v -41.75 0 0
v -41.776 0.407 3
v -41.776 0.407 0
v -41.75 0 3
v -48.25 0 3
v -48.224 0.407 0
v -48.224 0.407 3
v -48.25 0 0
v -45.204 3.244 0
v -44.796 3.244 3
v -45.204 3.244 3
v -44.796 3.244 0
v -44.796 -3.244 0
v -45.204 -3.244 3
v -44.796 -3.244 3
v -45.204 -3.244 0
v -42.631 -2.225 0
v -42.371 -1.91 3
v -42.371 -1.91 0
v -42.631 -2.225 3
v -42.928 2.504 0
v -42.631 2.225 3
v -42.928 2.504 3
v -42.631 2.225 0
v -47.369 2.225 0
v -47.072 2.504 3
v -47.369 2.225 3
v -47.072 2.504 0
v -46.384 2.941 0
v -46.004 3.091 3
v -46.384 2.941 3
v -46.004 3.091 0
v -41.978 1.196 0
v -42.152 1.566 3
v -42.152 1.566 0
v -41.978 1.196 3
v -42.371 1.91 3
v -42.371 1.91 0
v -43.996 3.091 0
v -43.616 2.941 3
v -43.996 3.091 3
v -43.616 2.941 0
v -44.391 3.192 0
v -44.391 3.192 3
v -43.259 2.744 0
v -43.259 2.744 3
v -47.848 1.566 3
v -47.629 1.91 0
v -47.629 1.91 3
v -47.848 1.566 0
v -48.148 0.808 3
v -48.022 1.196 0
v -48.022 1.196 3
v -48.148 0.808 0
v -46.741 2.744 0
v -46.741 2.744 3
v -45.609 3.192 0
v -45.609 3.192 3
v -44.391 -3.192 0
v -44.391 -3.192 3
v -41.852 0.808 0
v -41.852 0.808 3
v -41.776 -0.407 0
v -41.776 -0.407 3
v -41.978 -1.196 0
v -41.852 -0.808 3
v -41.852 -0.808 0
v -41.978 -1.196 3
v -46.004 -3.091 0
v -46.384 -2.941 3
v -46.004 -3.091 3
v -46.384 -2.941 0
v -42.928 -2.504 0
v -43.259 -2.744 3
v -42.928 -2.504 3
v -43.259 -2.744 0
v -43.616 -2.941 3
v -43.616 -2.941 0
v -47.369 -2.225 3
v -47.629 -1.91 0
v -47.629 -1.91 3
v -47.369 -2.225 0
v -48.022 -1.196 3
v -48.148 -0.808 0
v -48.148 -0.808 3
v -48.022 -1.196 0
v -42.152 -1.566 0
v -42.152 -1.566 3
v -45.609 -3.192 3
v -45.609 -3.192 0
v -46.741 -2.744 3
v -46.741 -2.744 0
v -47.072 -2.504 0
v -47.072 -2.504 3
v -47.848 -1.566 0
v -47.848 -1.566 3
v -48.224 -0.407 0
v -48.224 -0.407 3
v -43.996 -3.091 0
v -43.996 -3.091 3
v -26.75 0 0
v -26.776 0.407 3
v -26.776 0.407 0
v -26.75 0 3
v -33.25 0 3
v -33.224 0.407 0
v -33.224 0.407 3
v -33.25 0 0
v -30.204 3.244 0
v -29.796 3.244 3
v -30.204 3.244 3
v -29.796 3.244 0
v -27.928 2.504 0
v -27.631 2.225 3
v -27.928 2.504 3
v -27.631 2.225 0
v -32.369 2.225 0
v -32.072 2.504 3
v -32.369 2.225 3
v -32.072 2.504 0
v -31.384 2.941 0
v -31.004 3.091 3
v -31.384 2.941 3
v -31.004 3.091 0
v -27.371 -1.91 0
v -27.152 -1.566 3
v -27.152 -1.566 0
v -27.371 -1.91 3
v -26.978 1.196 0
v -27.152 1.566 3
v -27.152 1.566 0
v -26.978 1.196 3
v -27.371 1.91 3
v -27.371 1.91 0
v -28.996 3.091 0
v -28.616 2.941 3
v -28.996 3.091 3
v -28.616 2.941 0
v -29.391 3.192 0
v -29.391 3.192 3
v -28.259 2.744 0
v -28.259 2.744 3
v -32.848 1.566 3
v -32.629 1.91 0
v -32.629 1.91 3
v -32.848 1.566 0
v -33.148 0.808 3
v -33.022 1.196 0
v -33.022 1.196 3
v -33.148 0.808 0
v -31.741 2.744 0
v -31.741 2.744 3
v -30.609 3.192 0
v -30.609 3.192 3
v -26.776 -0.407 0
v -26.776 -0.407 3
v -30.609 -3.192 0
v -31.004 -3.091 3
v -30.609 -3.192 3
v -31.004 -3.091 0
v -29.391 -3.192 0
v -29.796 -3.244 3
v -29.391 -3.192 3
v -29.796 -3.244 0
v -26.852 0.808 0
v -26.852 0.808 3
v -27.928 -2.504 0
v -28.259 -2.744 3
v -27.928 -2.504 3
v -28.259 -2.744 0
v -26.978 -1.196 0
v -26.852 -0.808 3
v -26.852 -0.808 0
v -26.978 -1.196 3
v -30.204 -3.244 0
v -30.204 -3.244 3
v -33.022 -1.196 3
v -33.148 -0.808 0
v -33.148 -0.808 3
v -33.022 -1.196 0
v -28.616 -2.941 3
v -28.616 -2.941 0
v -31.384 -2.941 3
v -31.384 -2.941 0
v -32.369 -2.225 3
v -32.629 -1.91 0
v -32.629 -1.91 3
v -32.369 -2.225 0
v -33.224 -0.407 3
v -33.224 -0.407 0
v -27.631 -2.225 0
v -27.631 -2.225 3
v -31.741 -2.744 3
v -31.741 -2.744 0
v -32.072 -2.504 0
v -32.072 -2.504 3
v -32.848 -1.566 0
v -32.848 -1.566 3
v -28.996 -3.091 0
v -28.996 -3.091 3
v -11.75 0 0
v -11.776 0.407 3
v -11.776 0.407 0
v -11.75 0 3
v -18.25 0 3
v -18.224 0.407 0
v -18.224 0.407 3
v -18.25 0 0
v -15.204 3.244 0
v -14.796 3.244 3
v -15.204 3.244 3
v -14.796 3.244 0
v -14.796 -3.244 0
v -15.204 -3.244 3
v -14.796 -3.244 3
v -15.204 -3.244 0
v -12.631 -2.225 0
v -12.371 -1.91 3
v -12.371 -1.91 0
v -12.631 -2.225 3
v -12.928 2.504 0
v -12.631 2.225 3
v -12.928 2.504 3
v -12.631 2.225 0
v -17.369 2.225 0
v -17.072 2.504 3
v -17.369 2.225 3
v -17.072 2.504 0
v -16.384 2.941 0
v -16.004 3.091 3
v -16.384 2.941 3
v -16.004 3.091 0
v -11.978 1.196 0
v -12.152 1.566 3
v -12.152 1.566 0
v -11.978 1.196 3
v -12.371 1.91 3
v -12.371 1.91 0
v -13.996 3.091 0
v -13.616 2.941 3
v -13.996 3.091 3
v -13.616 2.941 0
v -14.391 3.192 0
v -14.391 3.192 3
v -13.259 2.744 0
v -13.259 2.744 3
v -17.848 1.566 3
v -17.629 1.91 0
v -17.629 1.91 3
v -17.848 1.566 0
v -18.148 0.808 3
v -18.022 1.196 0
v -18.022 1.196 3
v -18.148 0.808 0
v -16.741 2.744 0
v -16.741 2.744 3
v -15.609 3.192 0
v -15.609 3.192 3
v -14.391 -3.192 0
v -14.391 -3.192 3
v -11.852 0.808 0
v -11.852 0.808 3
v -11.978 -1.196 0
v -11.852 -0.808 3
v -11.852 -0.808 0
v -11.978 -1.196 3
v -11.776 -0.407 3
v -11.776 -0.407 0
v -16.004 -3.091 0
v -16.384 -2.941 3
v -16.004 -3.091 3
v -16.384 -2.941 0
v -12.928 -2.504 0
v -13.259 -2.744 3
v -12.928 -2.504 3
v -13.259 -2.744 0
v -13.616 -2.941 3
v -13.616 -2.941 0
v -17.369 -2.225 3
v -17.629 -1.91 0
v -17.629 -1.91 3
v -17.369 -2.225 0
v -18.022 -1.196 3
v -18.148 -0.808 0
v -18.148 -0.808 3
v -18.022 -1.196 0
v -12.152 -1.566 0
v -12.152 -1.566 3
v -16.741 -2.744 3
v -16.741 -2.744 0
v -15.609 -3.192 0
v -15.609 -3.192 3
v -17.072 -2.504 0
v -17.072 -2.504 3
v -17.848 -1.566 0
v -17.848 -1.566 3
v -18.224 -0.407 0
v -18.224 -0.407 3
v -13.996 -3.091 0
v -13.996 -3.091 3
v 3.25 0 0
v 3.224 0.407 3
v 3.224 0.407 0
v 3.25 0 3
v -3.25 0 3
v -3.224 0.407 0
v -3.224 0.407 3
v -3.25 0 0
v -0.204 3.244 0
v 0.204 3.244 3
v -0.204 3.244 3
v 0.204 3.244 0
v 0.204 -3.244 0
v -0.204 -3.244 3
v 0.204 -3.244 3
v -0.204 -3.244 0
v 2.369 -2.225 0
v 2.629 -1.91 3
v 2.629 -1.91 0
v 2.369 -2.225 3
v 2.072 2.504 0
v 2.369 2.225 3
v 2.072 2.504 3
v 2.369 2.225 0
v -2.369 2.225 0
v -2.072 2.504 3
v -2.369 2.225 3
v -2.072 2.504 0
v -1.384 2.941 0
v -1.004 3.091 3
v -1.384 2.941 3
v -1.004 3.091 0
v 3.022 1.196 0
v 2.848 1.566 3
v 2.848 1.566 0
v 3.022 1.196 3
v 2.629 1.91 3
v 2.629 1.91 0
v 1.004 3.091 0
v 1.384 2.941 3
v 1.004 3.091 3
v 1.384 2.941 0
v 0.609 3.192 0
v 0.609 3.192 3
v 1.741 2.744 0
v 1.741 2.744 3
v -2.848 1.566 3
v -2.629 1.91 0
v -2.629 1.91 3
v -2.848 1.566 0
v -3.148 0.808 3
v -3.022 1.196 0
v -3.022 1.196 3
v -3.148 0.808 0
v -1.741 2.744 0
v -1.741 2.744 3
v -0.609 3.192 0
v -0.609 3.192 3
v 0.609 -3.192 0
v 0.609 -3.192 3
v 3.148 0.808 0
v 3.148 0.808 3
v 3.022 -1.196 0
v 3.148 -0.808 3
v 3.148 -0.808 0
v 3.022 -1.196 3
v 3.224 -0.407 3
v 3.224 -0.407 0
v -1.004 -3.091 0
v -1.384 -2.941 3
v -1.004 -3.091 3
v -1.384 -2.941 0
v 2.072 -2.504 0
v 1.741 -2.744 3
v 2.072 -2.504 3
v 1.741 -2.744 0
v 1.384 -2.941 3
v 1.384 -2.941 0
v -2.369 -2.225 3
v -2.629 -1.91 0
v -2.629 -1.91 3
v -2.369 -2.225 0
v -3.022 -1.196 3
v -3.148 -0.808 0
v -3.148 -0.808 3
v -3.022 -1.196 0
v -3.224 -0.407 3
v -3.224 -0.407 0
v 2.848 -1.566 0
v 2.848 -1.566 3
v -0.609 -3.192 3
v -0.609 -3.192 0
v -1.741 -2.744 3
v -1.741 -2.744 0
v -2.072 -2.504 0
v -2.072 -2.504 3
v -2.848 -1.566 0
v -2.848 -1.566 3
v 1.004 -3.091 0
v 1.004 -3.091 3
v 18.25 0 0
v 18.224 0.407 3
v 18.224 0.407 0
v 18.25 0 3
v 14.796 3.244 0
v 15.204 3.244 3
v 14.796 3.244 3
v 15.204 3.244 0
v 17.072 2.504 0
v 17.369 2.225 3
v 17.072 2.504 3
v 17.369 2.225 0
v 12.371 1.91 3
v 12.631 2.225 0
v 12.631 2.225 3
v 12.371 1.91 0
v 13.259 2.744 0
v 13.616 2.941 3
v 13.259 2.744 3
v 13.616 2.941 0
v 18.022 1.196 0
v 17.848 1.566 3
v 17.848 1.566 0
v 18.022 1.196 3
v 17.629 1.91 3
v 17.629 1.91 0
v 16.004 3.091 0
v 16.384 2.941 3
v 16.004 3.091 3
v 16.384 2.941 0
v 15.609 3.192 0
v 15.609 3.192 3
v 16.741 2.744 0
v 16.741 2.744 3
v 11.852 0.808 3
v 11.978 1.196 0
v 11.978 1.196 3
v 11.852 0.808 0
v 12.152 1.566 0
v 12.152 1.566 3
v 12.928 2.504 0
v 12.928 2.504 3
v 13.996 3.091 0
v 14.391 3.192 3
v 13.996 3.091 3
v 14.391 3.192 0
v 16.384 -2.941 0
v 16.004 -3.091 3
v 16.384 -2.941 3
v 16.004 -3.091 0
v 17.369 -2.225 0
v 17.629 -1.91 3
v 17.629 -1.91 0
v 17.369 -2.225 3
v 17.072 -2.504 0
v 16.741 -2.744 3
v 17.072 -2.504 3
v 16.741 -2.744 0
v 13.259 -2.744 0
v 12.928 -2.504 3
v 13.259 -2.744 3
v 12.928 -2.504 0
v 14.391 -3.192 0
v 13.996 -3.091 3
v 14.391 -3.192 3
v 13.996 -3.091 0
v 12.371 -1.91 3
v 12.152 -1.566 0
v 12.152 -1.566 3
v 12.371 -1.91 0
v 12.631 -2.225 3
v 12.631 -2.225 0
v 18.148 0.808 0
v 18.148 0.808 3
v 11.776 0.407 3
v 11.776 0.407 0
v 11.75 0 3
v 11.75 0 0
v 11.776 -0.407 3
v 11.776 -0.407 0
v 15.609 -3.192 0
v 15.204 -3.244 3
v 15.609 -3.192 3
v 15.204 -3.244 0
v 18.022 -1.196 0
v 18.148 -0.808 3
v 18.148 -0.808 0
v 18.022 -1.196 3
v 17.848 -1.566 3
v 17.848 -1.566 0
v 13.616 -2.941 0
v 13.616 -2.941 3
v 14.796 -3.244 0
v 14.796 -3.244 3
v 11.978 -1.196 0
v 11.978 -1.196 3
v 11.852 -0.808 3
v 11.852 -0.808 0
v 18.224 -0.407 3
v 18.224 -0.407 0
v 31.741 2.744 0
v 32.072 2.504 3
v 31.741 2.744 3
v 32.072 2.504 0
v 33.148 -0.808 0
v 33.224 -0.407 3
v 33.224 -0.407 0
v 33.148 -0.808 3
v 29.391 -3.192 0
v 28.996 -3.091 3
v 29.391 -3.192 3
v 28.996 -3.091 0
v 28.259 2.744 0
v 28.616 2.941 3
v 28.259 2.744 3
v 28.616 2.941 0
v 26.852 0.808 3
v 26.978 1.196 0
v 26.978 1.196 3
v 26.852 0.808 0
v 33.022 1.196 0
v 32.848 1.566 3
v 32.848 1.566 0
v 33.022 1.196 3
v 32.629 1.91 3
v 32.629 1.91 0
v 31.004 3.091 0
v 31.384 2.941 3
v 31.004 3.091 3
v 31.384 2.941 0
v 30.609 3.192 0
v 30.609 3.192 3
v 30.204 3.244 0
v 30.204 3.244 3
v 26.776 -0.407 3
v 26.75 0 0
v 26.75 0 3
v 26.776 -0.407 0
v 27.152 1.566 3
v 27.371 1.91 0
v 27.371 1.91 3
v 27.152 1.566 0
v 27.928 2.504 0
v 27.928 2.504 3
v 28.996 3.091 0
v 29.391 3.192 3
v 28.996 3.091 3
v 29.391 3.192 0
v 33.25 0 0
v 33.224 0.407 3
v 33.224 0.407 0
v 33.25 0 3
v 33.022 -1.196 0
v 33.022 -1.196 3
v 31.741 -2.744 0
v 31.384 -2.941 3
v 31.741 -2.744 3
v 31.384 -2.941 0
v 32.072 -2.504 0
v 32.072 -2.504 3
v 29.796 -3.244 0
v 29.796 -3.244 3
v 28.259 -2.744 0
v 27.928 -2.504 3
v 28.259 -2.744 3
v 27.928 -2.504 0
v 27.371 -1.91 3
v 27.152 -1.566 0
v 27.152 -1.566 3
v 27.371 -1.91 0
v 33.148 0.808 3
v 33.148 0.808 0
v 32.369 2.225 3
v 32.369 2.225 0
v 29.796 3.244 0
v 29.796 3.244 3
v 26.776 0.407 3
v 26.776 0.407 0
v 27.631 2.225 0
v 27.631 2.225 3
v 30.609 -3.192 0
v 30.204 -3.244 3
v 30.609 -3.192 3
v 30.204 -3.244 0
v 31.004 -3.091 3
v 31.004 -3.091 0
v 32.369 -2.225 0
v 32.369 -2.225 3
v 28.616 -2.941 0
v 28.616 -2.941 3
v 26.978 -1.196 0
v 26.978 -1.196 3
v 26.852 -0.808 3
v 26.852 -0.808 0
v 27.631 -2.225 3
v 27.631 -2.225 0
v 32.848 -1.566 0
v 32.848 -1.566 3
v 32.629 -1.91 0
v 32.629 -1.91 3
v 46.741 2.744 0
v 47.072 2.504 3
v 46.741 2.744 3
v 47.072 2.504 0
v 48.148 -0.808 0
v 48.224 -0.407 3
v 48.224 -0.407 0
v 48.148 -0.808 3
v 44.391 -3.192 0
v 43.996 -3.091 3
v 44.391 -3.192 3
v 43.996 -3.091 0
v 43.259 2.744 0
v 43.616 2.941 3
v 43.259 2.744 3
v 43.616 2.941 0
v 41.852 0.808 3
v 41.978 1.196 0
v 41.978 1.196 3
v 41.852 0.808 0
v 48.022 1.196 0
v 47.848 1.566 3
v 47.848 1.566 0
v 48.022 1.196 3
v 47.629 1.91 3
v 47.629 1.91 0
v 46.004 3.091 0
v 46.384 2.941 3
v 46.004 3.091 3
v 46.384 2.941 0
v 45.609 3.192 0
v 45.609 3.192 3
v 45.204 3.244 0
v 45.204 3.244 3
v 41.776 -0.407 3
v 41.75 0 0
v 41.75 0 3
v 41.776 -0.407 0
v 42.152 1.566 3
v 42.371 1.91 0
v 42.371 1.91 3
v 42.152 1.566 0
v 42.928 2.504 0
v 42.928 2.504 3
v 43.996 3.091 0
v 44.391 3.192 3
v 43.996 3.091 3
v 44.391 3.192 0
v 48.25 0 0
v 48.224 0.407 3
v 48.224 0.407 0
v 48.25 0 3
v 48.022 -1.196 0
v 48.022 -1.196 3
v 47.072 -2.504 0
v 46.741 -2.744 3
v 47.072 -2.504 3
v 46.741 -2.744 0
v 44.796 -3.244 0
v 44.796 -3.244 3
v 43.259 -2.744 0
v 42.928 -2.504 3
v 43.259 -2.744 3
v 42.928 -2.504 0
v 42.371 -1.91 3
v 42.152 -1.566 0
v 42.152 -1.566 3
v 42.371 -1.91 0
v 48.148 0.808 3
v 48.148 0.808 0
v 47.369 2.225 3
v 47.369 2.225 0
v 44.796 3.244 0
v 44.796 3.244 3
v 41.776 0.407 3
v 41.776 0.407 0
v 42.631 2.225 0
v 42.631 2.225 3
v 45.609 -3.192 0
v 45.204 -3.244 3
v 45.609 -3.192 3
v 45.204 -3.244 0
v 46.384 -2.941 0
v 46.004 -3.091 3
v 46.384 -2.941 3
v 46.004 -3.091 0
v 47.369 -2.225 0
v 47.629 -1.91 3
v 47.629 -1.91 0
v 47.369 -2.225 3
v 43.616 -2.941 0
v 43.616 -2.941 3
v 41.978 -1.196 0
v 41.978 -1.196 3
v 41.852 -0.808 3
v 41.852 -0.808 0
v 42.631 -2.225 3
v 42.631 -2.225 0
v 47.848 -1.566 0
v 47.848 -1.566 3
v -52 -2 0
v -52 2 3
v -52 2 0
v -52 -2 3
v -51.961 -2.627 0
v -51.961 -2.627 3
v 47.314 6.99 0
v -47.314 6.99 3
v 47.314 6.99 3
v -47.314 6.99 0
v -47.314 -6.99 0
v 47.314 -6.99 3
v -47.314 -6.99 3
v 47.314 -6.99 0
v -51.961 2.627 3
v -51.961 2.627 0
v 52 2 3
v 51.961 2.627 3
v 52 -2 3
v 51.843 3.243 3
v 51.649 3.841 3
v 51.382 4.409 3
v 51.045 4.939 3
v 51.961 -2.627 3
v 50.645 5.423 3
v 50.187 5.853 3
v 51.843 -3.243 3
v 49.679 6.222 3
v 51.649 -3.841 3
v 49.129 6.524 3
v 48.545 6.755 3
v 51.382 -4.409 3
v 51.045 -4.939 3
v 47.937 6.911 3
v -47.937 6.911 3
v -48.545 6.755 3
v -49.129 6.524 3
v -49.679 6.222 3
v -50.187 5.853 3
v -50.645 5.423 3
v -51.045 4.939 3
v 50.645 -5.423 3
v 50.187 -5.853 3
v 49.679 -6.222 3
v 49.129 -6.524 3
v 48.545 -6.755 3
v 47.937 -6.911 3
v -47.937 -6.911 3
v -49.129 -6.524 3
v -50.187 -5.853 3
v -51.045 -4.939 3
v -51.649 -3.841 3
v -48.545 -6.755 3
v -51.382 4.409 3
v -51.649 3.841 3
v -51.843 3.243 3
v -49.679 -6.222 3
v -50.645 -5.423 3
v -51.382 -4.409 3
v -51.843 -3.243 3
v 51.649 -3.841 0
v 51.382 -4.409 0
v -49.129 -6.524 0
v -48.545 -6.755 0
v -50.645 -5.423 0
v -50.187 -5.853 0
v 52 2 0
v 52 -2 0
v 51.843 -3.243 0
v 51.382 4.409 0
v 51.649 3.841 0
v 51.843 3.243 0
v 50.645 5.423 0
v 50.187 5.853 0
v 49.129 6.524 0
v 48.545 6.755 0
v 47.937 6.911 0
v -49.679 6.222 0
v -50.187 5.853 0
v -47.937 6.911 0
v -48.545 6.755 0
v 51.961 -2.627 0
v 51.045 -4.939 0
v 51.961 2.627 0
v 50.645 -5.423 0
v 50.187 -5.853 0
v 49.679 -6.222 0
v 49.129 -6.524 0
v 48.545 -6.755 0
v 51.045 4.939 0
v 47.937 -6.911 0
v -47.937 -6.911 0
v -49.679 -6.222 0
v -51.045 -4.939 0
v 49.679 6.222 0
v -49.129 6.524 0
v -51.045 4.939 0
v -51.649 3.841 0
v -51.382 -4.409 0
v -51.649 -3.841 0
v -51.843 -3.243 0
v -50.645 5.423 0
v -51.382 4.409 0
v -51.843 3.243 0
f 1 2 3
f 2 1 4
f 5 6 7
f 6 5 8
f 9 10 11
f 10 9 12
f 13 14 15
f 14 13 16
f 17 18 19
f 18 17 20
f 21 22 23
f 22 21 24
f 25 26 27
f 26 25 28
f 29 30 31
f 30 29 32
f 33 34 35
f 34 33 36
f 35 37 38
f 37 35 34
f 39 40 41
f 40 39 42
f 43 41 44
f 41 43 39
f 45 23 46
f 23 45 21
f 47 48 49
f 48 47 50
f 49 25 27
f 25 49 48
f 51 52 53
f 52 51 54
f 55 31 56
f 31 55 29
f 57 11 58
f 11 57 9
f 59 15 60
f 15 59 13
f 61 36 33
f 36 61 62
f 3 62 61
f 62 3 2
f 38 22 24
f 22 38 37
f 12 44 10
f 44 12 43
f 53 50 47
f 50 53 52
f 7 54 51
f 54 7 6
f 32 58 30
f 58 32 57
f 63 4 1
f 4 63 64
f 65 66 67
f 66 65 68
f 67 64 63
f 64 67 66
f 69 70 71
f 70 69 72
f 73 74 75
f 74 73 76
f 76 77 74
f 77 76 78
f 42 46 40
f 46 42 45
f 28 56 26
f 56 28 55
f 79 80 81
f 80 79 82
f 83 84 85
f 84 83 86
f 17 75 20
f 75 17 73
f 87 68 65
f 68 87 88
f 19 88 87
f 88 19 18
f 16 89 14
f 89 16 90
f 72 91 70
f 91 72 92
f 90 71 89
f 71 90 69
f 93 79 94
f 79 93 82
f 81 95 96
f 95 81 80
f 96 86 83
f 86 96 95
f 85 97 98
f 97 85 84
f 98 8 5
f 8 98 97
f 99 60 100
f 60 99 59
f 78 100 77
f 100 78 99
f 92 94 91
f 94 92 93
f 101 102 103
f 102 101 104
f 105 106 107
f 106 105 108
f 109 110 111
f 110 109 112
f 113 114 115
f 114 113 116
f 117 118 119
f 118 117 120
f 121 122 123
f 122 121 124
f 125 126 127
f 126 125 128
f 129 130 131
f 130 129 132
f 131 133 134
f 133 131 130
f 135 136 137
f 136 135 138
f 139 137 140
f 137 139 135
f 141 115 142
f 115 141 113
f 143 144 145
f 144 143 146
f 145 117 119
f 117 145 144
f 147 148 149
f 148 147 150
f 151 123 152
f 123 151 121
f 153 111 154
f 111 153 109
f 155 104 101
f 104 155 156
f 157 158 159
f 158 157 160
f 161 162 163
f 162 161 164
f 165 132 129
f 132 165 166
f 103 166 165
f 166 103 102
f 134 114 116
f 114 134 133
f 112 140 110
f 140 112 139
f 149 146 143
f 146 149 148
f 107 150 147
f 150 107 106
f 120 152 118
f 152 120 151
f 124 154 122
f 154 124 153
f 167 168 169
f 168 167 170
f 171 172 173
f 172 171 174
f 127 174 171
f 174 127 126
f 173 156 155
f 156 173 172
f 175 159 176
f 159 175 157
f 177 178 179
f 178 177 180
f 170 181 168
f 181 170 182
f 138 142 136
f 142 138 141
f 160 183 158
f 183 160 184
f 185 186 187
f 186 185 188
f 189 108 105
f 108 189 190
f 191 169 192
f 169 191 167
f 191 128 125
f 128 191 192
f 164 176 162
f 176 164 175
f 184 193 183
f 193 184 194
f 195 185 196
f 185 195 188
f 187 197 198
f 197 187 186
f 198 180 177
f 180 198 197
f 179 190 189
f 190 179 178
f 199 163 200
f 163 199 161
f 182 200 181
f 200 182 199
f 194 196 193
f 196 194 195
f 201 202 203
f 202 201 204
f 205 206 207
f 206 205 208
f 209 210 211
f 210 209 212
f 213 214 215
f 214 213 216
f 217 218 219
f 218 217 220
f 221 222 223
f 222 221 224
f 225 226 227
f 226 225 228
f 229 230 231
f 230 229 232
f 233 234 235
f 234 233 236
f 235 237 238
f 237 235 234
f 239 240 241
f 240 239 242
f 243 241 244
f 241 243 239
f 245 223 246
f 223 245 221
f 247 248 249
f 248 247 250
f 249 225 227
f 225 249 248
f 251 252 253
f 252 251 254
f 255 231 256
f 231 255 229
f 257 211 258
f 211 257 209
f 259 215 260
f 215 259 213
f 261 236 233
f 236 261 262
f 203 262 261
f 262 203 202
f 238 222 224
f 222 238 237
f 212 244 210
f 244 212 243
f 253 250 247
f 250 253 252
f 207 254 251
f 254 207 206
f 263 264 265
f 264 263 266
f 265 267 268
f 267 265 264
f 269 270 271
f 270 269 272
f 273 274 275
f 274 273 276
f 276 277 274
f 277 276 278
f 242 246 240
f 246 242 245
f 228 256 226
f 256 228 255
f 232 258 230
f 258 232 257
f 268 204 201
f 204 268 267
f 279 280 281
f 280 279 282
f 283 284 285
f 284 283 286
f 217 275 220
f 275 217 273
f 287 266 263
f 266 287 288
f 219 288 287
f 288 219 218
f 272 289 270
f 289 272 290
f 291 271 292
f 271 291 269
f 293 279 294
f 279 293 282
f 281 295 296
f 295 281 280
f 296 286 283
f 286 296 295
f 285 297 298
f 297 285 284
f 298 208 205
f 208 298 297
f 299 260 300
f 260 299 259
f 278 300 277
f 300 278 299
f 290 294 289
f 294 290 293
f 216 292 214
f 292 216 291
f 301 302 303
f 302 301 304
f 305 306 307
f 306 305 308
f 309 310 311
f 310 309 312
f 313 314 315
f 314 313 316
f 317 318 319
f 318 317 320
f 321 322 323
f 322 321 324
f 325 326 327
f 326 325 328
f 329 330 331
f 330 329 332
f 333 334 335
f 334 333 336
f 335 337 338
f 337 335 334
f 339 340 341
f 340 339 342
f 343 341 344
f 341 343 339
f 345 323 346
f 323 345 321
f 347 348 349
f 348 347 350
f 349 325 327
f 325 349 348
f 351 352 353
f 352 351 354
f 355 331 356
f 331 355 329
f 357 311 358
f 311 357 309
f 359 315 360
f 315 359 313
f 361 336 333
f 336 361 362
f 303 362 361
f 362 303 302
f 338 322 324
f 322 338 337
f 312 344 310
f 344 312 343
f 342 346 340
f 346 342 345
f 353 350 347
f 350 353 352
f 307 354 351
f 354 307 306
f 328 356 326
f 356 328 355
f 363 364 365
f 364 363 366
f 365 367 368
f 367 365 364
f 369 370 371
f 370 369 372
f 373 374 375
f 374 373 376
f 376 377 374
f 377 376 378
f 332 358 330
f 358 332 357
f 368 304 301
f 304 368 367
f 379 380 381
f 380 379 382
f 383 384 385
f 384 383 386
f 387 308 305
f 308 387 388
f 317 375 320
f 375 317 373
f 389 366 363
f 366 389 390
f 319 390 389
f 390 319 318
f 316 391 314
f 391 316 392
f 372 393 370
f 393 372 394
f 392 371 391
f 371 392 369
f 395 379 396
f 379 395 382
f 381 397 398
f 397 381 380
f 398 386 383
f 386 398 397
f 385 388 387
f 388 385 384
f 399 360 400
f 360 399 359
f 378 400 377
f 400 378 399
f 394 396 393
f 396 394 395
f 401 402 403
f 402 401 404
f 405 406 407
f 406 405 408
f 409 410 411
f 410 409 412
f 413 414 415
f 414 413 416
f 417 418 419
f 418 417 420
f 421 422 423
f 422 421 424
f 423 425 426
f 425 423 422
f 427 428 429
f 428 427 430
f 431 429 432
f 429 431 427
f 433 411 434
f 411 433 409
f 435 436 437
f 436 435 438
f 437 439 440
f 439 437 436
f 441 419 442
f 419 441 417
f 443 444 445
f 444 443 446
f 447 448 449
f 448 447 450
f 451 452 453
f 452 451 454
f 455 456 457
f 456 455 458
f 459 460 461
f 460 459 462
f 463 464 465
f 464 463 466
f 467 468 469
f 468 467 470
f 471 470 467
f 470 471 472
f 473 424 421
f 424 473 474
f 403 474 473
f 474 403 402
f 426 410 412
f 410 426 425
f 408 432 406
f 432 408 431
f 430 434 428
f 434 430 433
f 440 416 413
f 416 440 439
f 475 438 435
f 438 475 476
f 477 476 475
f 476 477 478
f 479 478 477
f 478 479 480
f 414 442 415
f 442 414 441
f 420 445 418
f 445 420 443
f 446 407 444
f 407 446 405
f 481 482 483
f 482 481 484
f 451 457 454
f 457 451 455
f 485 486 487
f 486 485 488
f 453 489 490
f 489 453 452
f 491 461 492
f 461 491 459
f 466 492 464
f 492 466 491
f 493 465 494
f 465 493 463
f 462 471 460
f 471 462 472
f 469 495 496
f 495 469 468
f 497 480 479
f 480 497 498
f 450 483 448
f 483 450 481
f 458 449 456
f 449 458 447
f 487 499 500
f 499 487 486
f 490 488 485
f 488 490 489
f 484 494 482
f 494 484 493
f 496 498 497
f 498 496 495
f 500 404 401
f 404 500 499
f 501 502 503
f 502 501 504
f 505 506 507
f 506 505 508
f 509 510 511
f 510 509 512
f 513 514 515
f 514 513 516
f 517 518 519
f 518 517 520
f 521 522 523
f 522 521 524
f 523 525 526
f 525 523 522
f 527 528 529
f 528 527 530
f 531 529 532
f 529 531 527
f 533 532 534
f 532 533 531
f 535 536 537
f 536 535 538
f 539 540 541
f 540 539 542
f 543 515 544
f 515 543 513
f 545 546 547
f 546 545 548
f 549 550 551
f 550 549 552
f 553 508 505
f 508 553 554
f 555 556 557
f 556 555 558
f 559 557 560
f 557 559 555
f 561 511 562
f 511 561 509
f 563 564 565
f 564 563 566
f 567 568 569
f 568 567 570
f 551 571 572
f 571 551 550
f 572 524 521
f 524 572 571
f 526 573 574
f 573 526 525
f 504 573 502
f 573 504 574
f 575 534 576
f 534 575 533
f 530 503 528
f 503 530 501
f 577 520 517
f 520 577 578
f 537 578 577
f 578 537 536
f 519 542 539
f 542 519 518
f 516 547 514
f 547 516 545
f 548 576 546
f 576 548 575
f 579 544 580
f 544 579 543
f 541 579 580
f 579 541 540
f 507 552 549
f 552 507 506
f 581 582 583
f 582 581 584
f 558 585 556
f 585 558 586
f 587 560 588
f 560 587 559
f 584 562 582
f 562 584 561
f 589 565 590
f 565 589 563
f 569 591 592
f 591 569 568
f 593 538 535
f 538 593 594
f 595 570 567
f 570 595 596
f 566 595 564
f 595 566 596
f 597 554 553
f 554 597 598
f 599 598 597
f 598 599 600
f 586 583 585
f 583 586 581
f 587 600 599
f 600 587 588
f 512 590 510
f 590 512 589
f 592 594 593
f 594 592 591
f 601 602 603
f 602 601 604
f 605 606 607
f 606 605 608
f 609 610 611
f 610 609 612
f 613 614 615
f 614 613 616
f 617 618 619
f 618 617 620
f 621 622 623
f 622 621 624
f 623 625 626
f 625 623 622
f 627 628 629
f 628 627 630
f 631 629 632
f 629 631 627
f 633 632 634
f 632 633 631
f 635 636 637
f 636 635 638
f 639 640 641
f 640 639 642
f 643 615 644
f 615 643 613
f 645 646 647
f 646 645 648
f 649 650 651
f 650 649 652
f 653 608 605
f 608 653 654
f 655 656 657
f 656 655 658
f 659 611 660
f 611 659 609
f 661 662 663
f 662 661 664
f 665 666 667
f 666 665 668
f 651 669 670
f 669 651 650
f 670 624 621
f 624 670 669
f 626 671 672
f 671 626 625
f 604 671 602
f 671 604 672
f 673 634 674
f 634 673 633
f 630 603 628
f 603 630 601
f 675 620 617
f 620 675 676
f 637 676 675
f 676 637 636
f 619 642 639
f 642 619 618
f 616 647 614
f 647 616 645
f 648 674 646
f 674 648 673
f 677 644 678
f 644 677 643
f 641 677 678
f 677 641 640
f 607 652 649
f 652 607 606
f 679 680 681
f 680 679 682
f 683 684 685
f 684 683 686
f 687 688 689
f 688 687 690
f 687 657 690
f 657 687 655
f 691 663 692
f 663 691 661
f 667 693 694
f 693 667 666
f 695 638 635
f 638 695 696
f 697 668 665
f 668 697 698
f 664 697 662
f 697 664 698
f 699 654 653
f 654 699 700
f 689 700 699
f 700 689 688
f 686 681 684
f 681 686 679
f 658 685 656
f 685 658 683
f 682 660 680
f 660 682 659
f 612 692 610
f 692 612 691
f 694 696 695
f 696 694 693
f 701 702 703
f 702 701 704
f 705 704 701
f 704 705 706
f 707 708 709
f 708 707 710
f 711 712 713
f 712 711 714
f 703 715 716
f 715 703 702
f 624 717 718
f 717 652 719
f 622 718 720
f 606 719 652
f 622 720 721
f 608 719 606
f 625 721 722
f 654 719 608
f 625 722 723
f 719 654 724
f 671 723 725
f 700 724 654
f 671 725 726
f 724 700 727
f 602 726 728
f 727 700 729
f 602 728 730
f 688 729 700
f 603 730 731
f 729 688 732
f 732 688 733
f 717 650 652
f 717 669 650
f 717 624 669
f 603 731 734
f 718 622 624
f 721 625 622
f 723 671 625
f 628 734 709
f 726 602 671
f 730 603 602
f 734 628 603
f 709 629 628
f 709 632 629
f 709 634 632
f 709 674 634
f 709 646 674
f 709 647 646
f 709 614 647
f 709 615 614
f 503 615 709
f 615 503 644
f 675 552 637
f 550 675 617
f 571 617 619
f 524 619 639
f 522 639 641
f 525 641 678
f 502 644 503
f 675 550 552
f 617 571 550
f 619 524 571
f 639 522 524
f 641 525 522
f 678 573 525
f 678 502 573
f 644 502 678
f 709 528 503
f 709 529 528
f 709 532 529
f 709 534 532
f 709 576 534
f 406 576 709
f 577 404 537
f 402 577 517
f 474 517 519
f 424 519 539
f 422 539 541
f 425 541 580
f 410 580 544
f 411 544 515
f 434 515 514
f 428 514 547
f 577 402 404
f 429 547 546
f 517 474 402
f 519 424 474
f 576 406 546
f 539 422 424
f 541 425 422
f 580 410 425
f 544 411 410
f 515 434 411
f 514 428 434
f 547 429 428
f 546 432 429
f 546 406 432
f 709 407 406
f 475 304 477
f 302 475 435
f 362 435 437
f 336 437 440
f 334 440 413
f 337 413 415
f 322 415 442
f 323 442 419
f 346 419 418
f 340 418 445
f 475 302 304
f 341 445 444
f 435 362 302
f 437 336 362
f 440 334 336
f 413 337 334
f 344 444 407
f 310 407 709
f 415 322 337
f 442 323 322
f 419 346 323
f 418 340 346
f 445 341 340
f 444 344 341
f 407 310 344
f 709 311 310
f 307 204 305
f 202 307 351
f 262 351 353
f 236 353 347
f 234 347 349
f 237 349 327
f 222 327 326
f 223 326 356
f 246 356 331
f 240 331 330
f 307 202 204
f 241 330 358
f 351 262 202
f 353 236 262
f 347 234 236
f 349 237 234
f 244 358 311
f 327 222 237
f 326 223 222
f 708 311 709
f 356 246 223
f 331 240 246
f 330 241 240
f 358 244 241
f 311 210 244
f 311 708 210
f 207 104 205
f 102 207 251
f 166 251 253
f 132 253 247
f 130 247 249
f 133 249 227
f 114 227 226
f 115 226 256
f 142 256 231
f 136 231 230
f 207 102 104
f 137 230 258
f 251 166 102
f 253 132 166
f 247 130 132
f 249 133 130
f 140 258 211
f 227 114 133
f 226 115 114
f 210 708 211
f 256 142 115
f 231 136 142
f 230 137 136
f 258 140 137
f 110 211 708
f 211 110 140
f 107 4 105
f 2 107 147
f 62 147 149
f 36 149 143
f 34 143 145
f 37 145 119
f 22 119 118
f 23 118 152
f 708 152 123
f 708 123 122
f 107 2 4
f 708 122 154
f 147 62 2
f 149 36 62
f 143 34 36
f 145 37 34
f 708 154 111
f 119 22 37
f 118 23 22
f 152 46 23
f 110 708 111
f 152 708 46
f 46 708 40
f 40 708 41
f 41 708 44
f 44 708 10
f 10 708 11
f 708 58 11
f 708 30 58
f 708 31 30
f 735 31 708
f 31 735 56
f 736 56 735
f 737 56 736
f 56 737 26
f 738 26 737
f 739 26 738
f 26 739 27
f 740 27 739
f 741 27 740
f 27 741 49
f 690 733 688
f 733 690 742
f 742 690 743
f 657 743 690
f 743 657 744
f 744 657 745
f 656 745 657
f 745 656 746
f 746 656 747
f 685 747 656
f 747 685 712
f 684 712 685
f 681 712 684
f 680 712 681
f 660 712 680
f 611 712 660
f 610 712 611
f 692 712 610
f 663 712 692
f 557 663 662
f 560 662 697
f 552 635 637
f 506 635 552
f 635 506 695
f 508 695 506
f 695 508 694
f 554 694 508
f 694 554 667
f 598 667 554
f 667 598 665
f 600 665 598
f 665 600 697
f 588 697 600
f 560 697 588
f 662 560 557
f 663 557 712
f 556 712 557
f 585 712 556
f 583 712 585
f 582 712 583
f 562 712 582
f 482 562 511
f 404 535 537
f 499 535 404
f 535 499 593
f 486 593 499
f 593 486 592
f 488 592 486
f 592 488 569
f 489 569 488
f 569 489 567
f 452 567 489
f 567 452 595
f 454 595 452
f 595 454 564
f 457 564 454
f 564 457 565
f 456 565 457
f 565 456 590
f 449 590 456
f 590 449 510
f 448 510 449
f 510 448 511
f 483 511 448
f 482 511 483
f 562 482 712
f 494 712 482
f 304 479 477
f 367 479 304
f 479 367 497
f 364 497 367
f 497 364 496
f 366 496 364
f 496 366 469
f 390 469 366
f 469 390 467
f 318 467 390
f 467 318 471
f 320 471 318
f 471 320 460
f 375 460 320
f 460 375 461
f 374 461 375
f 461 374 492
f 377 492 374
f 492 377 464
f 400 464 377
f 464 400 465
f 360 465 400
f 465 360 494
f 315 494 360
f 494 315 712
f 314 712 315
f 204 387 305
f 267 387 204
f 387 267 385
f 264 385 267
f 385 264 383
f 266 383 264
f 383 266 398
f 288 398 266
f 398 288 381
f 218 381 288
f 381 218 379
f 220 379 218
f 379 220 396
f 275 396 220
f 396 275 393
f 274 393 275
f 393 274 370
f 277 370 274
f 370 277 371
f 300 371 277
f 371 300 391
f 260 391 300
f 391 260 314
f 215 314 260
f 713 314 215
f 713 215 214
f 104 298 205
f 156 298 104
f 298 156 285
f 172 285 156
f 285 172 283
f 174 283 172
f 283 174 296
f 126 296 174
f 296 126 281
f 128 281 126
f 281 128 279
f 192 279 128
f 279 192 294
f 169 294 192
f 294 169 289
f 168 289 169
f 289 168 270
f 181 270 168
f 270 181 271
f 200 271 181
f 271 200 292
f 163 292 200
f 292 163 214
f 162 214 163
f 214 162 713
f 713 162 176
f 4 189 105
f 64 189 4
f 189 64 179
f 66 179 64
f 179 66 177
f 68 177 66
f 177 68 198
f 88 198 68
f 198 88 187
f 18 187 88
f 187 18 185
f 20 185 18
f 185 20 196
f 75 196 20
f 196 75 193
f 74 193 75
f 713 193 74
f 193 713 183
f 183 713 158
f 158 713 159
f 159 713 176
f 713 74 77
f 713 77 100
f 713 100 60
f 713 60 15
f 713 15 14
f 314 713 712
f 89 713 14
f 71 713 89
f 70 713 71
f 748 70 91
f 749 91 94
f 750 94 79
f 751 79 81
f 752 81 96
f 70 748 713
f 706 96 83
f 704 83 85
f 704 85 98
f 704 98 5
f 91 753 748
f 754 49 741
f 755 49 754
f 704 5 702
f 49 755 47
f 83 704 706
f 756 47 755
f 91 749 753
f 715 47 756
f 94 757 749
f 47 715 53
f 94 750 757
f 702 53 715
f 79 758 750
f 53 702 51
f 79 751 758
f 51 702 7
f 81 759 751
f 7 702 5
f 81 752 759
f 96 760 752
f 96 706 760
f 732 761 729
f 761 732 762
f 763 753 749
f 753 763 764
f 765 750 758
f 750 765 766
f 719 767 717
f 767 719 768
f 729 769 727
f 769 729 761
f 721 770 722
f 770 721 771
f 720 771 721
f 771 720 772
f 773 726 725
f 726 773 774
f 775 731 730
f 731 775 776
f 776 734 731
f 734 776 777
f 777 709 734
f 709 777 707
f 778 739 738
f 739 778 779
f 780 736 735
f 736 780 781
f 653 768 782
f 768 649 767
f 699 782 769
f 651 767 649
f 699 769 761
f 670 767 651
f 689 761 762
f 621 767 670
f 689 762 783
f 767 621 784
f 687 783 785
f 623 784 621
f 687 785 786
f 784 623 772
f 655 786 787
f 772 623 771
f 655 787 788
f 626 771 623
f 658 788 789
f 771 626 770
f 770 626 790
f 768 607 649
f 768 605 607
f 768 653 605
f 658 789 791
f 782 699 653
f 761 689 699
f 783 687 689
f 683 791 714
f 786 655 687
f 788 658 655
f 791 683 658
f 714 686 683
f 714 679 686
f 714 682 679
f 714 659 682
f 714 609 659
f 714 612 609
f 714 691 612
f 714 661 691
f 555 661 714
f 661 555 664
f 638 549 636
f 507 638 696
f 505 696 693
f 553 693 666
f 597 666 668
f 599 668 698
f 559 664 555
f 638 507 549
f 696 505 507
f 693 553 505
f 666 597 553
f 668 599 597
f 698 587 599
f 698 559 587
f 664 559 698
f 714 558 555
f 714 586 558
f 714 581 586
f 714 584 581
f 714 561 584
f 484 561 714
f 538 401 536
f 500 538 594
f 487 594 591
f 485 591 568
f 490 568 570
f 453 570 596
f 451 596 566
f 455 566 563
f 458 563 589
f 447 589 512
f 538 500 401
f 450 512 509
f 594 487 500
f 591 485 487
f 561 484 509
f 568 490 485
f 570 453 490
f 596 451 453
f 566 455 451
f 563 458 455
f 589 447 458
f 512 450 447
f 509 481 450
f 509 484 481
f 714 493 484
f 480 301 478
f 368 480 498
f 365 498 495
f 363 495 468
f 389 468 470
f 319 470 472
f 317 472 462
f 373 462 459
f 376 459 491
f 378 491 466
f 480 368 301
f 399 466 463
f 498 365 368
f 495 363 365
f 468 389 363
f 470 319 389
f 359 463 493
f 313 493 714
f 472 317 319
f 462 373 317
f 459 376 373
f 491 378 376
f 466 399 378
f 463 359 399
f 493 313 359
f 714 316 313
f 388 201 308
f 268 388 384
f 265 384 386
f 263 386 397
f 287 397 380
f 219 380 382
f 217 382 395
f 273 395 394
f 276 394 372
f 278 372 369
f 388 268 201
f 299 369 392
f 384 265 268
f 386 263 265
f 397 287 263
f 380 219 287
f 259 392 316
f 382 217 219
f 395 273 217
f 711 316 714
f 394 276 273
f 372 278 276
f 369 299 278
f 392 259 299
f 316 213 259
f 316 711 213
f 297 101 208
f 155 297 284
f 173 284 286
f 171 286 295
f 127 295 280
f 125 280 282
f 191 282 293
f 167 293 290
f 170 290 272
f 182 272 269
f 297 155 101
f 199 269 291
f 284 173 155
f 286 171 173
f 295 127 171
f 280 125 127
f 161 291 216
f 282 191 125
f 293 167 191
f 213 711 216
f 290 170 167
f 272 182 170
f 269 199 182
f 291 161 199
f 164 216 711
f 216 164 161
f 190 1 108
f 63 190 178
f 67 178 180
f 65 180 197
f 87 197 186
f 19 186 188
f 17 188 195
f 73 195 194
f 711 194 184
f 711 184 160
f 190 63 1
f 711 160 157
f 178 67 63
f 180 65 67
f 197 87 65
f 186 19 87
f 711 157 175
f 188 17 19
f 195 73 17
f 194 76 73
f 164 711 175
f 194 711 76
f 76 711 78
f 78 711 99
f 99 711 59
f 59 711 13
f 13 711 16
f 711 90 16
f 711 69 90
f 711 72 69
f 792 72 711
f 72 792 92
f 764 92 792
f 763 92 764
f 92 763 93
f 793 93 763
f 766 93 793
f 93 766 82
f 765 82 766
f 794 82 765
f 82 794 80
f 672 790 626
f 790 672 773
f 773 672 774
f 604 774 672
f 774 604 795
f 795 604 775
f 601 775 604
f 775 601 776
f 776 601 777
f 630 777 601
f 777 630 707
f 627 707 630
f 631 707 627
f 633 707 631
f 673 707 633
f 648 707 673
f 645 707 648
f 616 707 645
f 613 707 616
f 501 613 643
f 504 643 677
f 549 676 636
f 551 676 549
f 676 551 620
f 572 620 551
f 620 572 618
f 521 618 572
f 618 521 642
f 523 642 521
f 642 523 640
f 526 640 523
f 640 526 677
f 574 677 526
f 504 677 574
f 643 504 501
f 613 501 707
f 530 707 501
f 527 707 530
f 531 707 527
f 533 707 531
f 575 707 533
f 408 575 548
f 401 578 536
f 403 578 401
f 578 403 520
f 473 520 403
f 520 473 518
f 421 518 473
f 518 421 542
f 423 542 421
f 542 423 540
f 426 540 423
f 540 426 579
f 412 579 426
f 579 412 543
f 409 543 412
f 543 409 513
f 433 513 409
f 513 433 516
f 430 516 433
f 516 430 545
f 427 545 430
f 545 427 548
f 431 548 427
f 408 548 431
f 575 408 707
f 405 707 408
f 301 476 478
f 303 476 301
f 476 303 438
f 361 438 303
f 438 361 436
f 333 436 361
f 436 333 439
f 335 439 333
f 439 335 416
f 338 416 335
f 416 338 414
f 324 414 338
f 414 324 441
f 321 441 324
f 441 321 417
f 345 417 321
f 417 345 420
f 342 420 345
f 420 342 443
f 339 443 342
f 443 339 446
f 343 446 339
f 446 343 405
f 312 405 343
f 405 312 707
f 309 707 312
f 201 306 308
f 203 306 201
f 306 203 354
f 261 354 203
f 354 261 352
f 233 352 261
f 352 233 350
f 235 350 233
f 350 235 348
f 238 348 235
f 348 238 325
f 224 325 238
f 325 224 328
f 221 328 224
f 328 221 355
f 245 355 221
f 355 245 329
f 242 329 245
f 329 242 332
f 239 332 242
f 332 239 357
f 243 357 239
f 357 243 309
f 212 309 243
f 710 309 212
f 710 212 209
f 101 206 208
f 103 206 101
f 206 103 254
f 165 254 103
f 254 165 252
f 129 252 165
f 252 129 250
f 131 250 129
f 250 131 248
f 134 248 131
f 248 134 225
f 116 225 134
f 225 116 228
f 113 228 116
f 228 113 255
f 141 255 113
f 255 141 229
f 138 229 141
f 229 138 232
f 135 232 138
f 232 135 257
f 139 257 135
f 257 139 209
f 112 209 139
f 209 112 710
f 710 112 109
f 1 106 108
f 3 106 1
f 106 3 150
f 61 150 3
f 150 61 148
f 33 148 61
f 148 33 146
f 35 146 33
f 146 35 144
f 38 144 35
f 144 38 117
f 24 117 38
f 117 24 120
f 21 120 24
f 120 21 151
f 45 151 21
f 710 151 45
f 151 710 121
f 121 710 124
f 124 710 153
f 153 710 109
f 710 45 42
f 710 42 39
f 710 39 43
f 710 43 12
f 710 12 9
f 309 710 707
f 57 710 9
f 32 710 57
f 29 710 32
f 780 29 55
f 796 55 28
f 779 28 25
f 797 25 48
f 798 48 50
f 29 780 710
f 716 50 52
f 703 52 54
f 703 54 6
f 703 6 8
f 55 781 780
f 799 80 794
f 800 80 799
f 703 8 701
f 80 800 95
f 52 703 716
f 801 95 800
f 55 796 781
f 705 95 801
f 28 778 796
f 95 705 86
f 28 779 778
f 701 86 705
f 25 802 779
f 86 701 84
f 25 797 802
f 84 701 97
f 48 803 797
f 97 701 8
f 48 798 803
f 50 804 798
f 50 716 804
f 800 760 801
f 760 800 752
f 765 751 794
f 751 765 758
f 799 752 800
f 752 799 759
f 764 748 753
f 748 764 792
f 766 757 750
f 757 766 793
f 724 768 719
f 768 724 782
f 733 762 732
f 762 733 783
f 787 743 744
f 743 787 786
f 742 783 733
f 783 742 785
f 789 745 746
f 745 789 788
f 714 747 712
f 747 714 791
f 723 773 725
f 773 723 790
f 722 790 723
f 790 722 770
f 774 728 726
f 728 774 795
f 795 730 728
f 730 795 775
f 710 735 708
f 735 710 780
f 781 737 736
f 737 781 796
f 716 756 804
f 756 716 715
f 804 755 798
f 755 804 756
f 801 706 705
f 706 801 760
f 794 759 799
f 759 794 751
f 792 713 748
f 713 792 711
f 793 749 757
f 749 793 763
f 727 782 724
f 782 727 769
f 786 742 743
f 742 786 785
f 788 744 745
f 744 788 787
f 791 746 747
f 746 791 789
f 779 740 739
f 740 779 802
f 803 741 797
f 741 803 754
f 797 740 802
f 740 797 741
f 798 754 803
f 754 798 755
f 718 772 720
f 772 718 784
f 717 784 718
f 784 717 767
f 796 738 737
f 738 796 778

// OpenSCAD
$fn = 50;


difference() {
	union() {
		hull() {
			translate(v = [-47.0000000000, 2.0000000000, 0]) {
				cylinder(h = 3, r = 5);
			}
			translate(v = [47.0000000000, 2.0000000000, 0]) {
				cylinder(h = 3, r = 5);
			}
			translate(v = [-47.0000000000, -2.0000000000, 0]) {
				cylinder(h = 3, r = 5);
			}
			translate(v = [47.0000000000, -2.0000000000, 0]) {
				cylinder(h = 3, r = 5);
			}
		}
	}
	union() {
		translate(v = [-45.0000000000, 0.0000000000, -100.0000000000]) {
			cylinder(h = 200, r = 3.2500000000);
		}
		translate(v = [-30.0000000000, 0.0000000000, -100.0000000000]) {
			cylinder(h = 200, r = 3.2500000000);
		}
		translate(v = [-15.0000000000, 0.0000000000, -100.0000000000]) {
			cylinder(h = 200, r = 3.2500000000);
		}
		translate(v = [0.0000000000, 0.0000000000, -100.0000000000]) {
			cylinder(h = 200, r = 3.2500000000);
		}
		translate(v = [15.0000000000, 0.0000000000, -100.0000000000]) {
			cylinder(h = 200, r = 3.2500000000);
		}
		translate(v = [30.0000000000, 0.0000000000, -100.0000000000]) {
			cylinder(h = 200, r = 3.2500000000);
		}
		translate(v = [45.0000000000, 0.0000000000, -100.0000000000]) {
			cylinder(h = 200, r = 3.2500000000);
		}
	}
}
